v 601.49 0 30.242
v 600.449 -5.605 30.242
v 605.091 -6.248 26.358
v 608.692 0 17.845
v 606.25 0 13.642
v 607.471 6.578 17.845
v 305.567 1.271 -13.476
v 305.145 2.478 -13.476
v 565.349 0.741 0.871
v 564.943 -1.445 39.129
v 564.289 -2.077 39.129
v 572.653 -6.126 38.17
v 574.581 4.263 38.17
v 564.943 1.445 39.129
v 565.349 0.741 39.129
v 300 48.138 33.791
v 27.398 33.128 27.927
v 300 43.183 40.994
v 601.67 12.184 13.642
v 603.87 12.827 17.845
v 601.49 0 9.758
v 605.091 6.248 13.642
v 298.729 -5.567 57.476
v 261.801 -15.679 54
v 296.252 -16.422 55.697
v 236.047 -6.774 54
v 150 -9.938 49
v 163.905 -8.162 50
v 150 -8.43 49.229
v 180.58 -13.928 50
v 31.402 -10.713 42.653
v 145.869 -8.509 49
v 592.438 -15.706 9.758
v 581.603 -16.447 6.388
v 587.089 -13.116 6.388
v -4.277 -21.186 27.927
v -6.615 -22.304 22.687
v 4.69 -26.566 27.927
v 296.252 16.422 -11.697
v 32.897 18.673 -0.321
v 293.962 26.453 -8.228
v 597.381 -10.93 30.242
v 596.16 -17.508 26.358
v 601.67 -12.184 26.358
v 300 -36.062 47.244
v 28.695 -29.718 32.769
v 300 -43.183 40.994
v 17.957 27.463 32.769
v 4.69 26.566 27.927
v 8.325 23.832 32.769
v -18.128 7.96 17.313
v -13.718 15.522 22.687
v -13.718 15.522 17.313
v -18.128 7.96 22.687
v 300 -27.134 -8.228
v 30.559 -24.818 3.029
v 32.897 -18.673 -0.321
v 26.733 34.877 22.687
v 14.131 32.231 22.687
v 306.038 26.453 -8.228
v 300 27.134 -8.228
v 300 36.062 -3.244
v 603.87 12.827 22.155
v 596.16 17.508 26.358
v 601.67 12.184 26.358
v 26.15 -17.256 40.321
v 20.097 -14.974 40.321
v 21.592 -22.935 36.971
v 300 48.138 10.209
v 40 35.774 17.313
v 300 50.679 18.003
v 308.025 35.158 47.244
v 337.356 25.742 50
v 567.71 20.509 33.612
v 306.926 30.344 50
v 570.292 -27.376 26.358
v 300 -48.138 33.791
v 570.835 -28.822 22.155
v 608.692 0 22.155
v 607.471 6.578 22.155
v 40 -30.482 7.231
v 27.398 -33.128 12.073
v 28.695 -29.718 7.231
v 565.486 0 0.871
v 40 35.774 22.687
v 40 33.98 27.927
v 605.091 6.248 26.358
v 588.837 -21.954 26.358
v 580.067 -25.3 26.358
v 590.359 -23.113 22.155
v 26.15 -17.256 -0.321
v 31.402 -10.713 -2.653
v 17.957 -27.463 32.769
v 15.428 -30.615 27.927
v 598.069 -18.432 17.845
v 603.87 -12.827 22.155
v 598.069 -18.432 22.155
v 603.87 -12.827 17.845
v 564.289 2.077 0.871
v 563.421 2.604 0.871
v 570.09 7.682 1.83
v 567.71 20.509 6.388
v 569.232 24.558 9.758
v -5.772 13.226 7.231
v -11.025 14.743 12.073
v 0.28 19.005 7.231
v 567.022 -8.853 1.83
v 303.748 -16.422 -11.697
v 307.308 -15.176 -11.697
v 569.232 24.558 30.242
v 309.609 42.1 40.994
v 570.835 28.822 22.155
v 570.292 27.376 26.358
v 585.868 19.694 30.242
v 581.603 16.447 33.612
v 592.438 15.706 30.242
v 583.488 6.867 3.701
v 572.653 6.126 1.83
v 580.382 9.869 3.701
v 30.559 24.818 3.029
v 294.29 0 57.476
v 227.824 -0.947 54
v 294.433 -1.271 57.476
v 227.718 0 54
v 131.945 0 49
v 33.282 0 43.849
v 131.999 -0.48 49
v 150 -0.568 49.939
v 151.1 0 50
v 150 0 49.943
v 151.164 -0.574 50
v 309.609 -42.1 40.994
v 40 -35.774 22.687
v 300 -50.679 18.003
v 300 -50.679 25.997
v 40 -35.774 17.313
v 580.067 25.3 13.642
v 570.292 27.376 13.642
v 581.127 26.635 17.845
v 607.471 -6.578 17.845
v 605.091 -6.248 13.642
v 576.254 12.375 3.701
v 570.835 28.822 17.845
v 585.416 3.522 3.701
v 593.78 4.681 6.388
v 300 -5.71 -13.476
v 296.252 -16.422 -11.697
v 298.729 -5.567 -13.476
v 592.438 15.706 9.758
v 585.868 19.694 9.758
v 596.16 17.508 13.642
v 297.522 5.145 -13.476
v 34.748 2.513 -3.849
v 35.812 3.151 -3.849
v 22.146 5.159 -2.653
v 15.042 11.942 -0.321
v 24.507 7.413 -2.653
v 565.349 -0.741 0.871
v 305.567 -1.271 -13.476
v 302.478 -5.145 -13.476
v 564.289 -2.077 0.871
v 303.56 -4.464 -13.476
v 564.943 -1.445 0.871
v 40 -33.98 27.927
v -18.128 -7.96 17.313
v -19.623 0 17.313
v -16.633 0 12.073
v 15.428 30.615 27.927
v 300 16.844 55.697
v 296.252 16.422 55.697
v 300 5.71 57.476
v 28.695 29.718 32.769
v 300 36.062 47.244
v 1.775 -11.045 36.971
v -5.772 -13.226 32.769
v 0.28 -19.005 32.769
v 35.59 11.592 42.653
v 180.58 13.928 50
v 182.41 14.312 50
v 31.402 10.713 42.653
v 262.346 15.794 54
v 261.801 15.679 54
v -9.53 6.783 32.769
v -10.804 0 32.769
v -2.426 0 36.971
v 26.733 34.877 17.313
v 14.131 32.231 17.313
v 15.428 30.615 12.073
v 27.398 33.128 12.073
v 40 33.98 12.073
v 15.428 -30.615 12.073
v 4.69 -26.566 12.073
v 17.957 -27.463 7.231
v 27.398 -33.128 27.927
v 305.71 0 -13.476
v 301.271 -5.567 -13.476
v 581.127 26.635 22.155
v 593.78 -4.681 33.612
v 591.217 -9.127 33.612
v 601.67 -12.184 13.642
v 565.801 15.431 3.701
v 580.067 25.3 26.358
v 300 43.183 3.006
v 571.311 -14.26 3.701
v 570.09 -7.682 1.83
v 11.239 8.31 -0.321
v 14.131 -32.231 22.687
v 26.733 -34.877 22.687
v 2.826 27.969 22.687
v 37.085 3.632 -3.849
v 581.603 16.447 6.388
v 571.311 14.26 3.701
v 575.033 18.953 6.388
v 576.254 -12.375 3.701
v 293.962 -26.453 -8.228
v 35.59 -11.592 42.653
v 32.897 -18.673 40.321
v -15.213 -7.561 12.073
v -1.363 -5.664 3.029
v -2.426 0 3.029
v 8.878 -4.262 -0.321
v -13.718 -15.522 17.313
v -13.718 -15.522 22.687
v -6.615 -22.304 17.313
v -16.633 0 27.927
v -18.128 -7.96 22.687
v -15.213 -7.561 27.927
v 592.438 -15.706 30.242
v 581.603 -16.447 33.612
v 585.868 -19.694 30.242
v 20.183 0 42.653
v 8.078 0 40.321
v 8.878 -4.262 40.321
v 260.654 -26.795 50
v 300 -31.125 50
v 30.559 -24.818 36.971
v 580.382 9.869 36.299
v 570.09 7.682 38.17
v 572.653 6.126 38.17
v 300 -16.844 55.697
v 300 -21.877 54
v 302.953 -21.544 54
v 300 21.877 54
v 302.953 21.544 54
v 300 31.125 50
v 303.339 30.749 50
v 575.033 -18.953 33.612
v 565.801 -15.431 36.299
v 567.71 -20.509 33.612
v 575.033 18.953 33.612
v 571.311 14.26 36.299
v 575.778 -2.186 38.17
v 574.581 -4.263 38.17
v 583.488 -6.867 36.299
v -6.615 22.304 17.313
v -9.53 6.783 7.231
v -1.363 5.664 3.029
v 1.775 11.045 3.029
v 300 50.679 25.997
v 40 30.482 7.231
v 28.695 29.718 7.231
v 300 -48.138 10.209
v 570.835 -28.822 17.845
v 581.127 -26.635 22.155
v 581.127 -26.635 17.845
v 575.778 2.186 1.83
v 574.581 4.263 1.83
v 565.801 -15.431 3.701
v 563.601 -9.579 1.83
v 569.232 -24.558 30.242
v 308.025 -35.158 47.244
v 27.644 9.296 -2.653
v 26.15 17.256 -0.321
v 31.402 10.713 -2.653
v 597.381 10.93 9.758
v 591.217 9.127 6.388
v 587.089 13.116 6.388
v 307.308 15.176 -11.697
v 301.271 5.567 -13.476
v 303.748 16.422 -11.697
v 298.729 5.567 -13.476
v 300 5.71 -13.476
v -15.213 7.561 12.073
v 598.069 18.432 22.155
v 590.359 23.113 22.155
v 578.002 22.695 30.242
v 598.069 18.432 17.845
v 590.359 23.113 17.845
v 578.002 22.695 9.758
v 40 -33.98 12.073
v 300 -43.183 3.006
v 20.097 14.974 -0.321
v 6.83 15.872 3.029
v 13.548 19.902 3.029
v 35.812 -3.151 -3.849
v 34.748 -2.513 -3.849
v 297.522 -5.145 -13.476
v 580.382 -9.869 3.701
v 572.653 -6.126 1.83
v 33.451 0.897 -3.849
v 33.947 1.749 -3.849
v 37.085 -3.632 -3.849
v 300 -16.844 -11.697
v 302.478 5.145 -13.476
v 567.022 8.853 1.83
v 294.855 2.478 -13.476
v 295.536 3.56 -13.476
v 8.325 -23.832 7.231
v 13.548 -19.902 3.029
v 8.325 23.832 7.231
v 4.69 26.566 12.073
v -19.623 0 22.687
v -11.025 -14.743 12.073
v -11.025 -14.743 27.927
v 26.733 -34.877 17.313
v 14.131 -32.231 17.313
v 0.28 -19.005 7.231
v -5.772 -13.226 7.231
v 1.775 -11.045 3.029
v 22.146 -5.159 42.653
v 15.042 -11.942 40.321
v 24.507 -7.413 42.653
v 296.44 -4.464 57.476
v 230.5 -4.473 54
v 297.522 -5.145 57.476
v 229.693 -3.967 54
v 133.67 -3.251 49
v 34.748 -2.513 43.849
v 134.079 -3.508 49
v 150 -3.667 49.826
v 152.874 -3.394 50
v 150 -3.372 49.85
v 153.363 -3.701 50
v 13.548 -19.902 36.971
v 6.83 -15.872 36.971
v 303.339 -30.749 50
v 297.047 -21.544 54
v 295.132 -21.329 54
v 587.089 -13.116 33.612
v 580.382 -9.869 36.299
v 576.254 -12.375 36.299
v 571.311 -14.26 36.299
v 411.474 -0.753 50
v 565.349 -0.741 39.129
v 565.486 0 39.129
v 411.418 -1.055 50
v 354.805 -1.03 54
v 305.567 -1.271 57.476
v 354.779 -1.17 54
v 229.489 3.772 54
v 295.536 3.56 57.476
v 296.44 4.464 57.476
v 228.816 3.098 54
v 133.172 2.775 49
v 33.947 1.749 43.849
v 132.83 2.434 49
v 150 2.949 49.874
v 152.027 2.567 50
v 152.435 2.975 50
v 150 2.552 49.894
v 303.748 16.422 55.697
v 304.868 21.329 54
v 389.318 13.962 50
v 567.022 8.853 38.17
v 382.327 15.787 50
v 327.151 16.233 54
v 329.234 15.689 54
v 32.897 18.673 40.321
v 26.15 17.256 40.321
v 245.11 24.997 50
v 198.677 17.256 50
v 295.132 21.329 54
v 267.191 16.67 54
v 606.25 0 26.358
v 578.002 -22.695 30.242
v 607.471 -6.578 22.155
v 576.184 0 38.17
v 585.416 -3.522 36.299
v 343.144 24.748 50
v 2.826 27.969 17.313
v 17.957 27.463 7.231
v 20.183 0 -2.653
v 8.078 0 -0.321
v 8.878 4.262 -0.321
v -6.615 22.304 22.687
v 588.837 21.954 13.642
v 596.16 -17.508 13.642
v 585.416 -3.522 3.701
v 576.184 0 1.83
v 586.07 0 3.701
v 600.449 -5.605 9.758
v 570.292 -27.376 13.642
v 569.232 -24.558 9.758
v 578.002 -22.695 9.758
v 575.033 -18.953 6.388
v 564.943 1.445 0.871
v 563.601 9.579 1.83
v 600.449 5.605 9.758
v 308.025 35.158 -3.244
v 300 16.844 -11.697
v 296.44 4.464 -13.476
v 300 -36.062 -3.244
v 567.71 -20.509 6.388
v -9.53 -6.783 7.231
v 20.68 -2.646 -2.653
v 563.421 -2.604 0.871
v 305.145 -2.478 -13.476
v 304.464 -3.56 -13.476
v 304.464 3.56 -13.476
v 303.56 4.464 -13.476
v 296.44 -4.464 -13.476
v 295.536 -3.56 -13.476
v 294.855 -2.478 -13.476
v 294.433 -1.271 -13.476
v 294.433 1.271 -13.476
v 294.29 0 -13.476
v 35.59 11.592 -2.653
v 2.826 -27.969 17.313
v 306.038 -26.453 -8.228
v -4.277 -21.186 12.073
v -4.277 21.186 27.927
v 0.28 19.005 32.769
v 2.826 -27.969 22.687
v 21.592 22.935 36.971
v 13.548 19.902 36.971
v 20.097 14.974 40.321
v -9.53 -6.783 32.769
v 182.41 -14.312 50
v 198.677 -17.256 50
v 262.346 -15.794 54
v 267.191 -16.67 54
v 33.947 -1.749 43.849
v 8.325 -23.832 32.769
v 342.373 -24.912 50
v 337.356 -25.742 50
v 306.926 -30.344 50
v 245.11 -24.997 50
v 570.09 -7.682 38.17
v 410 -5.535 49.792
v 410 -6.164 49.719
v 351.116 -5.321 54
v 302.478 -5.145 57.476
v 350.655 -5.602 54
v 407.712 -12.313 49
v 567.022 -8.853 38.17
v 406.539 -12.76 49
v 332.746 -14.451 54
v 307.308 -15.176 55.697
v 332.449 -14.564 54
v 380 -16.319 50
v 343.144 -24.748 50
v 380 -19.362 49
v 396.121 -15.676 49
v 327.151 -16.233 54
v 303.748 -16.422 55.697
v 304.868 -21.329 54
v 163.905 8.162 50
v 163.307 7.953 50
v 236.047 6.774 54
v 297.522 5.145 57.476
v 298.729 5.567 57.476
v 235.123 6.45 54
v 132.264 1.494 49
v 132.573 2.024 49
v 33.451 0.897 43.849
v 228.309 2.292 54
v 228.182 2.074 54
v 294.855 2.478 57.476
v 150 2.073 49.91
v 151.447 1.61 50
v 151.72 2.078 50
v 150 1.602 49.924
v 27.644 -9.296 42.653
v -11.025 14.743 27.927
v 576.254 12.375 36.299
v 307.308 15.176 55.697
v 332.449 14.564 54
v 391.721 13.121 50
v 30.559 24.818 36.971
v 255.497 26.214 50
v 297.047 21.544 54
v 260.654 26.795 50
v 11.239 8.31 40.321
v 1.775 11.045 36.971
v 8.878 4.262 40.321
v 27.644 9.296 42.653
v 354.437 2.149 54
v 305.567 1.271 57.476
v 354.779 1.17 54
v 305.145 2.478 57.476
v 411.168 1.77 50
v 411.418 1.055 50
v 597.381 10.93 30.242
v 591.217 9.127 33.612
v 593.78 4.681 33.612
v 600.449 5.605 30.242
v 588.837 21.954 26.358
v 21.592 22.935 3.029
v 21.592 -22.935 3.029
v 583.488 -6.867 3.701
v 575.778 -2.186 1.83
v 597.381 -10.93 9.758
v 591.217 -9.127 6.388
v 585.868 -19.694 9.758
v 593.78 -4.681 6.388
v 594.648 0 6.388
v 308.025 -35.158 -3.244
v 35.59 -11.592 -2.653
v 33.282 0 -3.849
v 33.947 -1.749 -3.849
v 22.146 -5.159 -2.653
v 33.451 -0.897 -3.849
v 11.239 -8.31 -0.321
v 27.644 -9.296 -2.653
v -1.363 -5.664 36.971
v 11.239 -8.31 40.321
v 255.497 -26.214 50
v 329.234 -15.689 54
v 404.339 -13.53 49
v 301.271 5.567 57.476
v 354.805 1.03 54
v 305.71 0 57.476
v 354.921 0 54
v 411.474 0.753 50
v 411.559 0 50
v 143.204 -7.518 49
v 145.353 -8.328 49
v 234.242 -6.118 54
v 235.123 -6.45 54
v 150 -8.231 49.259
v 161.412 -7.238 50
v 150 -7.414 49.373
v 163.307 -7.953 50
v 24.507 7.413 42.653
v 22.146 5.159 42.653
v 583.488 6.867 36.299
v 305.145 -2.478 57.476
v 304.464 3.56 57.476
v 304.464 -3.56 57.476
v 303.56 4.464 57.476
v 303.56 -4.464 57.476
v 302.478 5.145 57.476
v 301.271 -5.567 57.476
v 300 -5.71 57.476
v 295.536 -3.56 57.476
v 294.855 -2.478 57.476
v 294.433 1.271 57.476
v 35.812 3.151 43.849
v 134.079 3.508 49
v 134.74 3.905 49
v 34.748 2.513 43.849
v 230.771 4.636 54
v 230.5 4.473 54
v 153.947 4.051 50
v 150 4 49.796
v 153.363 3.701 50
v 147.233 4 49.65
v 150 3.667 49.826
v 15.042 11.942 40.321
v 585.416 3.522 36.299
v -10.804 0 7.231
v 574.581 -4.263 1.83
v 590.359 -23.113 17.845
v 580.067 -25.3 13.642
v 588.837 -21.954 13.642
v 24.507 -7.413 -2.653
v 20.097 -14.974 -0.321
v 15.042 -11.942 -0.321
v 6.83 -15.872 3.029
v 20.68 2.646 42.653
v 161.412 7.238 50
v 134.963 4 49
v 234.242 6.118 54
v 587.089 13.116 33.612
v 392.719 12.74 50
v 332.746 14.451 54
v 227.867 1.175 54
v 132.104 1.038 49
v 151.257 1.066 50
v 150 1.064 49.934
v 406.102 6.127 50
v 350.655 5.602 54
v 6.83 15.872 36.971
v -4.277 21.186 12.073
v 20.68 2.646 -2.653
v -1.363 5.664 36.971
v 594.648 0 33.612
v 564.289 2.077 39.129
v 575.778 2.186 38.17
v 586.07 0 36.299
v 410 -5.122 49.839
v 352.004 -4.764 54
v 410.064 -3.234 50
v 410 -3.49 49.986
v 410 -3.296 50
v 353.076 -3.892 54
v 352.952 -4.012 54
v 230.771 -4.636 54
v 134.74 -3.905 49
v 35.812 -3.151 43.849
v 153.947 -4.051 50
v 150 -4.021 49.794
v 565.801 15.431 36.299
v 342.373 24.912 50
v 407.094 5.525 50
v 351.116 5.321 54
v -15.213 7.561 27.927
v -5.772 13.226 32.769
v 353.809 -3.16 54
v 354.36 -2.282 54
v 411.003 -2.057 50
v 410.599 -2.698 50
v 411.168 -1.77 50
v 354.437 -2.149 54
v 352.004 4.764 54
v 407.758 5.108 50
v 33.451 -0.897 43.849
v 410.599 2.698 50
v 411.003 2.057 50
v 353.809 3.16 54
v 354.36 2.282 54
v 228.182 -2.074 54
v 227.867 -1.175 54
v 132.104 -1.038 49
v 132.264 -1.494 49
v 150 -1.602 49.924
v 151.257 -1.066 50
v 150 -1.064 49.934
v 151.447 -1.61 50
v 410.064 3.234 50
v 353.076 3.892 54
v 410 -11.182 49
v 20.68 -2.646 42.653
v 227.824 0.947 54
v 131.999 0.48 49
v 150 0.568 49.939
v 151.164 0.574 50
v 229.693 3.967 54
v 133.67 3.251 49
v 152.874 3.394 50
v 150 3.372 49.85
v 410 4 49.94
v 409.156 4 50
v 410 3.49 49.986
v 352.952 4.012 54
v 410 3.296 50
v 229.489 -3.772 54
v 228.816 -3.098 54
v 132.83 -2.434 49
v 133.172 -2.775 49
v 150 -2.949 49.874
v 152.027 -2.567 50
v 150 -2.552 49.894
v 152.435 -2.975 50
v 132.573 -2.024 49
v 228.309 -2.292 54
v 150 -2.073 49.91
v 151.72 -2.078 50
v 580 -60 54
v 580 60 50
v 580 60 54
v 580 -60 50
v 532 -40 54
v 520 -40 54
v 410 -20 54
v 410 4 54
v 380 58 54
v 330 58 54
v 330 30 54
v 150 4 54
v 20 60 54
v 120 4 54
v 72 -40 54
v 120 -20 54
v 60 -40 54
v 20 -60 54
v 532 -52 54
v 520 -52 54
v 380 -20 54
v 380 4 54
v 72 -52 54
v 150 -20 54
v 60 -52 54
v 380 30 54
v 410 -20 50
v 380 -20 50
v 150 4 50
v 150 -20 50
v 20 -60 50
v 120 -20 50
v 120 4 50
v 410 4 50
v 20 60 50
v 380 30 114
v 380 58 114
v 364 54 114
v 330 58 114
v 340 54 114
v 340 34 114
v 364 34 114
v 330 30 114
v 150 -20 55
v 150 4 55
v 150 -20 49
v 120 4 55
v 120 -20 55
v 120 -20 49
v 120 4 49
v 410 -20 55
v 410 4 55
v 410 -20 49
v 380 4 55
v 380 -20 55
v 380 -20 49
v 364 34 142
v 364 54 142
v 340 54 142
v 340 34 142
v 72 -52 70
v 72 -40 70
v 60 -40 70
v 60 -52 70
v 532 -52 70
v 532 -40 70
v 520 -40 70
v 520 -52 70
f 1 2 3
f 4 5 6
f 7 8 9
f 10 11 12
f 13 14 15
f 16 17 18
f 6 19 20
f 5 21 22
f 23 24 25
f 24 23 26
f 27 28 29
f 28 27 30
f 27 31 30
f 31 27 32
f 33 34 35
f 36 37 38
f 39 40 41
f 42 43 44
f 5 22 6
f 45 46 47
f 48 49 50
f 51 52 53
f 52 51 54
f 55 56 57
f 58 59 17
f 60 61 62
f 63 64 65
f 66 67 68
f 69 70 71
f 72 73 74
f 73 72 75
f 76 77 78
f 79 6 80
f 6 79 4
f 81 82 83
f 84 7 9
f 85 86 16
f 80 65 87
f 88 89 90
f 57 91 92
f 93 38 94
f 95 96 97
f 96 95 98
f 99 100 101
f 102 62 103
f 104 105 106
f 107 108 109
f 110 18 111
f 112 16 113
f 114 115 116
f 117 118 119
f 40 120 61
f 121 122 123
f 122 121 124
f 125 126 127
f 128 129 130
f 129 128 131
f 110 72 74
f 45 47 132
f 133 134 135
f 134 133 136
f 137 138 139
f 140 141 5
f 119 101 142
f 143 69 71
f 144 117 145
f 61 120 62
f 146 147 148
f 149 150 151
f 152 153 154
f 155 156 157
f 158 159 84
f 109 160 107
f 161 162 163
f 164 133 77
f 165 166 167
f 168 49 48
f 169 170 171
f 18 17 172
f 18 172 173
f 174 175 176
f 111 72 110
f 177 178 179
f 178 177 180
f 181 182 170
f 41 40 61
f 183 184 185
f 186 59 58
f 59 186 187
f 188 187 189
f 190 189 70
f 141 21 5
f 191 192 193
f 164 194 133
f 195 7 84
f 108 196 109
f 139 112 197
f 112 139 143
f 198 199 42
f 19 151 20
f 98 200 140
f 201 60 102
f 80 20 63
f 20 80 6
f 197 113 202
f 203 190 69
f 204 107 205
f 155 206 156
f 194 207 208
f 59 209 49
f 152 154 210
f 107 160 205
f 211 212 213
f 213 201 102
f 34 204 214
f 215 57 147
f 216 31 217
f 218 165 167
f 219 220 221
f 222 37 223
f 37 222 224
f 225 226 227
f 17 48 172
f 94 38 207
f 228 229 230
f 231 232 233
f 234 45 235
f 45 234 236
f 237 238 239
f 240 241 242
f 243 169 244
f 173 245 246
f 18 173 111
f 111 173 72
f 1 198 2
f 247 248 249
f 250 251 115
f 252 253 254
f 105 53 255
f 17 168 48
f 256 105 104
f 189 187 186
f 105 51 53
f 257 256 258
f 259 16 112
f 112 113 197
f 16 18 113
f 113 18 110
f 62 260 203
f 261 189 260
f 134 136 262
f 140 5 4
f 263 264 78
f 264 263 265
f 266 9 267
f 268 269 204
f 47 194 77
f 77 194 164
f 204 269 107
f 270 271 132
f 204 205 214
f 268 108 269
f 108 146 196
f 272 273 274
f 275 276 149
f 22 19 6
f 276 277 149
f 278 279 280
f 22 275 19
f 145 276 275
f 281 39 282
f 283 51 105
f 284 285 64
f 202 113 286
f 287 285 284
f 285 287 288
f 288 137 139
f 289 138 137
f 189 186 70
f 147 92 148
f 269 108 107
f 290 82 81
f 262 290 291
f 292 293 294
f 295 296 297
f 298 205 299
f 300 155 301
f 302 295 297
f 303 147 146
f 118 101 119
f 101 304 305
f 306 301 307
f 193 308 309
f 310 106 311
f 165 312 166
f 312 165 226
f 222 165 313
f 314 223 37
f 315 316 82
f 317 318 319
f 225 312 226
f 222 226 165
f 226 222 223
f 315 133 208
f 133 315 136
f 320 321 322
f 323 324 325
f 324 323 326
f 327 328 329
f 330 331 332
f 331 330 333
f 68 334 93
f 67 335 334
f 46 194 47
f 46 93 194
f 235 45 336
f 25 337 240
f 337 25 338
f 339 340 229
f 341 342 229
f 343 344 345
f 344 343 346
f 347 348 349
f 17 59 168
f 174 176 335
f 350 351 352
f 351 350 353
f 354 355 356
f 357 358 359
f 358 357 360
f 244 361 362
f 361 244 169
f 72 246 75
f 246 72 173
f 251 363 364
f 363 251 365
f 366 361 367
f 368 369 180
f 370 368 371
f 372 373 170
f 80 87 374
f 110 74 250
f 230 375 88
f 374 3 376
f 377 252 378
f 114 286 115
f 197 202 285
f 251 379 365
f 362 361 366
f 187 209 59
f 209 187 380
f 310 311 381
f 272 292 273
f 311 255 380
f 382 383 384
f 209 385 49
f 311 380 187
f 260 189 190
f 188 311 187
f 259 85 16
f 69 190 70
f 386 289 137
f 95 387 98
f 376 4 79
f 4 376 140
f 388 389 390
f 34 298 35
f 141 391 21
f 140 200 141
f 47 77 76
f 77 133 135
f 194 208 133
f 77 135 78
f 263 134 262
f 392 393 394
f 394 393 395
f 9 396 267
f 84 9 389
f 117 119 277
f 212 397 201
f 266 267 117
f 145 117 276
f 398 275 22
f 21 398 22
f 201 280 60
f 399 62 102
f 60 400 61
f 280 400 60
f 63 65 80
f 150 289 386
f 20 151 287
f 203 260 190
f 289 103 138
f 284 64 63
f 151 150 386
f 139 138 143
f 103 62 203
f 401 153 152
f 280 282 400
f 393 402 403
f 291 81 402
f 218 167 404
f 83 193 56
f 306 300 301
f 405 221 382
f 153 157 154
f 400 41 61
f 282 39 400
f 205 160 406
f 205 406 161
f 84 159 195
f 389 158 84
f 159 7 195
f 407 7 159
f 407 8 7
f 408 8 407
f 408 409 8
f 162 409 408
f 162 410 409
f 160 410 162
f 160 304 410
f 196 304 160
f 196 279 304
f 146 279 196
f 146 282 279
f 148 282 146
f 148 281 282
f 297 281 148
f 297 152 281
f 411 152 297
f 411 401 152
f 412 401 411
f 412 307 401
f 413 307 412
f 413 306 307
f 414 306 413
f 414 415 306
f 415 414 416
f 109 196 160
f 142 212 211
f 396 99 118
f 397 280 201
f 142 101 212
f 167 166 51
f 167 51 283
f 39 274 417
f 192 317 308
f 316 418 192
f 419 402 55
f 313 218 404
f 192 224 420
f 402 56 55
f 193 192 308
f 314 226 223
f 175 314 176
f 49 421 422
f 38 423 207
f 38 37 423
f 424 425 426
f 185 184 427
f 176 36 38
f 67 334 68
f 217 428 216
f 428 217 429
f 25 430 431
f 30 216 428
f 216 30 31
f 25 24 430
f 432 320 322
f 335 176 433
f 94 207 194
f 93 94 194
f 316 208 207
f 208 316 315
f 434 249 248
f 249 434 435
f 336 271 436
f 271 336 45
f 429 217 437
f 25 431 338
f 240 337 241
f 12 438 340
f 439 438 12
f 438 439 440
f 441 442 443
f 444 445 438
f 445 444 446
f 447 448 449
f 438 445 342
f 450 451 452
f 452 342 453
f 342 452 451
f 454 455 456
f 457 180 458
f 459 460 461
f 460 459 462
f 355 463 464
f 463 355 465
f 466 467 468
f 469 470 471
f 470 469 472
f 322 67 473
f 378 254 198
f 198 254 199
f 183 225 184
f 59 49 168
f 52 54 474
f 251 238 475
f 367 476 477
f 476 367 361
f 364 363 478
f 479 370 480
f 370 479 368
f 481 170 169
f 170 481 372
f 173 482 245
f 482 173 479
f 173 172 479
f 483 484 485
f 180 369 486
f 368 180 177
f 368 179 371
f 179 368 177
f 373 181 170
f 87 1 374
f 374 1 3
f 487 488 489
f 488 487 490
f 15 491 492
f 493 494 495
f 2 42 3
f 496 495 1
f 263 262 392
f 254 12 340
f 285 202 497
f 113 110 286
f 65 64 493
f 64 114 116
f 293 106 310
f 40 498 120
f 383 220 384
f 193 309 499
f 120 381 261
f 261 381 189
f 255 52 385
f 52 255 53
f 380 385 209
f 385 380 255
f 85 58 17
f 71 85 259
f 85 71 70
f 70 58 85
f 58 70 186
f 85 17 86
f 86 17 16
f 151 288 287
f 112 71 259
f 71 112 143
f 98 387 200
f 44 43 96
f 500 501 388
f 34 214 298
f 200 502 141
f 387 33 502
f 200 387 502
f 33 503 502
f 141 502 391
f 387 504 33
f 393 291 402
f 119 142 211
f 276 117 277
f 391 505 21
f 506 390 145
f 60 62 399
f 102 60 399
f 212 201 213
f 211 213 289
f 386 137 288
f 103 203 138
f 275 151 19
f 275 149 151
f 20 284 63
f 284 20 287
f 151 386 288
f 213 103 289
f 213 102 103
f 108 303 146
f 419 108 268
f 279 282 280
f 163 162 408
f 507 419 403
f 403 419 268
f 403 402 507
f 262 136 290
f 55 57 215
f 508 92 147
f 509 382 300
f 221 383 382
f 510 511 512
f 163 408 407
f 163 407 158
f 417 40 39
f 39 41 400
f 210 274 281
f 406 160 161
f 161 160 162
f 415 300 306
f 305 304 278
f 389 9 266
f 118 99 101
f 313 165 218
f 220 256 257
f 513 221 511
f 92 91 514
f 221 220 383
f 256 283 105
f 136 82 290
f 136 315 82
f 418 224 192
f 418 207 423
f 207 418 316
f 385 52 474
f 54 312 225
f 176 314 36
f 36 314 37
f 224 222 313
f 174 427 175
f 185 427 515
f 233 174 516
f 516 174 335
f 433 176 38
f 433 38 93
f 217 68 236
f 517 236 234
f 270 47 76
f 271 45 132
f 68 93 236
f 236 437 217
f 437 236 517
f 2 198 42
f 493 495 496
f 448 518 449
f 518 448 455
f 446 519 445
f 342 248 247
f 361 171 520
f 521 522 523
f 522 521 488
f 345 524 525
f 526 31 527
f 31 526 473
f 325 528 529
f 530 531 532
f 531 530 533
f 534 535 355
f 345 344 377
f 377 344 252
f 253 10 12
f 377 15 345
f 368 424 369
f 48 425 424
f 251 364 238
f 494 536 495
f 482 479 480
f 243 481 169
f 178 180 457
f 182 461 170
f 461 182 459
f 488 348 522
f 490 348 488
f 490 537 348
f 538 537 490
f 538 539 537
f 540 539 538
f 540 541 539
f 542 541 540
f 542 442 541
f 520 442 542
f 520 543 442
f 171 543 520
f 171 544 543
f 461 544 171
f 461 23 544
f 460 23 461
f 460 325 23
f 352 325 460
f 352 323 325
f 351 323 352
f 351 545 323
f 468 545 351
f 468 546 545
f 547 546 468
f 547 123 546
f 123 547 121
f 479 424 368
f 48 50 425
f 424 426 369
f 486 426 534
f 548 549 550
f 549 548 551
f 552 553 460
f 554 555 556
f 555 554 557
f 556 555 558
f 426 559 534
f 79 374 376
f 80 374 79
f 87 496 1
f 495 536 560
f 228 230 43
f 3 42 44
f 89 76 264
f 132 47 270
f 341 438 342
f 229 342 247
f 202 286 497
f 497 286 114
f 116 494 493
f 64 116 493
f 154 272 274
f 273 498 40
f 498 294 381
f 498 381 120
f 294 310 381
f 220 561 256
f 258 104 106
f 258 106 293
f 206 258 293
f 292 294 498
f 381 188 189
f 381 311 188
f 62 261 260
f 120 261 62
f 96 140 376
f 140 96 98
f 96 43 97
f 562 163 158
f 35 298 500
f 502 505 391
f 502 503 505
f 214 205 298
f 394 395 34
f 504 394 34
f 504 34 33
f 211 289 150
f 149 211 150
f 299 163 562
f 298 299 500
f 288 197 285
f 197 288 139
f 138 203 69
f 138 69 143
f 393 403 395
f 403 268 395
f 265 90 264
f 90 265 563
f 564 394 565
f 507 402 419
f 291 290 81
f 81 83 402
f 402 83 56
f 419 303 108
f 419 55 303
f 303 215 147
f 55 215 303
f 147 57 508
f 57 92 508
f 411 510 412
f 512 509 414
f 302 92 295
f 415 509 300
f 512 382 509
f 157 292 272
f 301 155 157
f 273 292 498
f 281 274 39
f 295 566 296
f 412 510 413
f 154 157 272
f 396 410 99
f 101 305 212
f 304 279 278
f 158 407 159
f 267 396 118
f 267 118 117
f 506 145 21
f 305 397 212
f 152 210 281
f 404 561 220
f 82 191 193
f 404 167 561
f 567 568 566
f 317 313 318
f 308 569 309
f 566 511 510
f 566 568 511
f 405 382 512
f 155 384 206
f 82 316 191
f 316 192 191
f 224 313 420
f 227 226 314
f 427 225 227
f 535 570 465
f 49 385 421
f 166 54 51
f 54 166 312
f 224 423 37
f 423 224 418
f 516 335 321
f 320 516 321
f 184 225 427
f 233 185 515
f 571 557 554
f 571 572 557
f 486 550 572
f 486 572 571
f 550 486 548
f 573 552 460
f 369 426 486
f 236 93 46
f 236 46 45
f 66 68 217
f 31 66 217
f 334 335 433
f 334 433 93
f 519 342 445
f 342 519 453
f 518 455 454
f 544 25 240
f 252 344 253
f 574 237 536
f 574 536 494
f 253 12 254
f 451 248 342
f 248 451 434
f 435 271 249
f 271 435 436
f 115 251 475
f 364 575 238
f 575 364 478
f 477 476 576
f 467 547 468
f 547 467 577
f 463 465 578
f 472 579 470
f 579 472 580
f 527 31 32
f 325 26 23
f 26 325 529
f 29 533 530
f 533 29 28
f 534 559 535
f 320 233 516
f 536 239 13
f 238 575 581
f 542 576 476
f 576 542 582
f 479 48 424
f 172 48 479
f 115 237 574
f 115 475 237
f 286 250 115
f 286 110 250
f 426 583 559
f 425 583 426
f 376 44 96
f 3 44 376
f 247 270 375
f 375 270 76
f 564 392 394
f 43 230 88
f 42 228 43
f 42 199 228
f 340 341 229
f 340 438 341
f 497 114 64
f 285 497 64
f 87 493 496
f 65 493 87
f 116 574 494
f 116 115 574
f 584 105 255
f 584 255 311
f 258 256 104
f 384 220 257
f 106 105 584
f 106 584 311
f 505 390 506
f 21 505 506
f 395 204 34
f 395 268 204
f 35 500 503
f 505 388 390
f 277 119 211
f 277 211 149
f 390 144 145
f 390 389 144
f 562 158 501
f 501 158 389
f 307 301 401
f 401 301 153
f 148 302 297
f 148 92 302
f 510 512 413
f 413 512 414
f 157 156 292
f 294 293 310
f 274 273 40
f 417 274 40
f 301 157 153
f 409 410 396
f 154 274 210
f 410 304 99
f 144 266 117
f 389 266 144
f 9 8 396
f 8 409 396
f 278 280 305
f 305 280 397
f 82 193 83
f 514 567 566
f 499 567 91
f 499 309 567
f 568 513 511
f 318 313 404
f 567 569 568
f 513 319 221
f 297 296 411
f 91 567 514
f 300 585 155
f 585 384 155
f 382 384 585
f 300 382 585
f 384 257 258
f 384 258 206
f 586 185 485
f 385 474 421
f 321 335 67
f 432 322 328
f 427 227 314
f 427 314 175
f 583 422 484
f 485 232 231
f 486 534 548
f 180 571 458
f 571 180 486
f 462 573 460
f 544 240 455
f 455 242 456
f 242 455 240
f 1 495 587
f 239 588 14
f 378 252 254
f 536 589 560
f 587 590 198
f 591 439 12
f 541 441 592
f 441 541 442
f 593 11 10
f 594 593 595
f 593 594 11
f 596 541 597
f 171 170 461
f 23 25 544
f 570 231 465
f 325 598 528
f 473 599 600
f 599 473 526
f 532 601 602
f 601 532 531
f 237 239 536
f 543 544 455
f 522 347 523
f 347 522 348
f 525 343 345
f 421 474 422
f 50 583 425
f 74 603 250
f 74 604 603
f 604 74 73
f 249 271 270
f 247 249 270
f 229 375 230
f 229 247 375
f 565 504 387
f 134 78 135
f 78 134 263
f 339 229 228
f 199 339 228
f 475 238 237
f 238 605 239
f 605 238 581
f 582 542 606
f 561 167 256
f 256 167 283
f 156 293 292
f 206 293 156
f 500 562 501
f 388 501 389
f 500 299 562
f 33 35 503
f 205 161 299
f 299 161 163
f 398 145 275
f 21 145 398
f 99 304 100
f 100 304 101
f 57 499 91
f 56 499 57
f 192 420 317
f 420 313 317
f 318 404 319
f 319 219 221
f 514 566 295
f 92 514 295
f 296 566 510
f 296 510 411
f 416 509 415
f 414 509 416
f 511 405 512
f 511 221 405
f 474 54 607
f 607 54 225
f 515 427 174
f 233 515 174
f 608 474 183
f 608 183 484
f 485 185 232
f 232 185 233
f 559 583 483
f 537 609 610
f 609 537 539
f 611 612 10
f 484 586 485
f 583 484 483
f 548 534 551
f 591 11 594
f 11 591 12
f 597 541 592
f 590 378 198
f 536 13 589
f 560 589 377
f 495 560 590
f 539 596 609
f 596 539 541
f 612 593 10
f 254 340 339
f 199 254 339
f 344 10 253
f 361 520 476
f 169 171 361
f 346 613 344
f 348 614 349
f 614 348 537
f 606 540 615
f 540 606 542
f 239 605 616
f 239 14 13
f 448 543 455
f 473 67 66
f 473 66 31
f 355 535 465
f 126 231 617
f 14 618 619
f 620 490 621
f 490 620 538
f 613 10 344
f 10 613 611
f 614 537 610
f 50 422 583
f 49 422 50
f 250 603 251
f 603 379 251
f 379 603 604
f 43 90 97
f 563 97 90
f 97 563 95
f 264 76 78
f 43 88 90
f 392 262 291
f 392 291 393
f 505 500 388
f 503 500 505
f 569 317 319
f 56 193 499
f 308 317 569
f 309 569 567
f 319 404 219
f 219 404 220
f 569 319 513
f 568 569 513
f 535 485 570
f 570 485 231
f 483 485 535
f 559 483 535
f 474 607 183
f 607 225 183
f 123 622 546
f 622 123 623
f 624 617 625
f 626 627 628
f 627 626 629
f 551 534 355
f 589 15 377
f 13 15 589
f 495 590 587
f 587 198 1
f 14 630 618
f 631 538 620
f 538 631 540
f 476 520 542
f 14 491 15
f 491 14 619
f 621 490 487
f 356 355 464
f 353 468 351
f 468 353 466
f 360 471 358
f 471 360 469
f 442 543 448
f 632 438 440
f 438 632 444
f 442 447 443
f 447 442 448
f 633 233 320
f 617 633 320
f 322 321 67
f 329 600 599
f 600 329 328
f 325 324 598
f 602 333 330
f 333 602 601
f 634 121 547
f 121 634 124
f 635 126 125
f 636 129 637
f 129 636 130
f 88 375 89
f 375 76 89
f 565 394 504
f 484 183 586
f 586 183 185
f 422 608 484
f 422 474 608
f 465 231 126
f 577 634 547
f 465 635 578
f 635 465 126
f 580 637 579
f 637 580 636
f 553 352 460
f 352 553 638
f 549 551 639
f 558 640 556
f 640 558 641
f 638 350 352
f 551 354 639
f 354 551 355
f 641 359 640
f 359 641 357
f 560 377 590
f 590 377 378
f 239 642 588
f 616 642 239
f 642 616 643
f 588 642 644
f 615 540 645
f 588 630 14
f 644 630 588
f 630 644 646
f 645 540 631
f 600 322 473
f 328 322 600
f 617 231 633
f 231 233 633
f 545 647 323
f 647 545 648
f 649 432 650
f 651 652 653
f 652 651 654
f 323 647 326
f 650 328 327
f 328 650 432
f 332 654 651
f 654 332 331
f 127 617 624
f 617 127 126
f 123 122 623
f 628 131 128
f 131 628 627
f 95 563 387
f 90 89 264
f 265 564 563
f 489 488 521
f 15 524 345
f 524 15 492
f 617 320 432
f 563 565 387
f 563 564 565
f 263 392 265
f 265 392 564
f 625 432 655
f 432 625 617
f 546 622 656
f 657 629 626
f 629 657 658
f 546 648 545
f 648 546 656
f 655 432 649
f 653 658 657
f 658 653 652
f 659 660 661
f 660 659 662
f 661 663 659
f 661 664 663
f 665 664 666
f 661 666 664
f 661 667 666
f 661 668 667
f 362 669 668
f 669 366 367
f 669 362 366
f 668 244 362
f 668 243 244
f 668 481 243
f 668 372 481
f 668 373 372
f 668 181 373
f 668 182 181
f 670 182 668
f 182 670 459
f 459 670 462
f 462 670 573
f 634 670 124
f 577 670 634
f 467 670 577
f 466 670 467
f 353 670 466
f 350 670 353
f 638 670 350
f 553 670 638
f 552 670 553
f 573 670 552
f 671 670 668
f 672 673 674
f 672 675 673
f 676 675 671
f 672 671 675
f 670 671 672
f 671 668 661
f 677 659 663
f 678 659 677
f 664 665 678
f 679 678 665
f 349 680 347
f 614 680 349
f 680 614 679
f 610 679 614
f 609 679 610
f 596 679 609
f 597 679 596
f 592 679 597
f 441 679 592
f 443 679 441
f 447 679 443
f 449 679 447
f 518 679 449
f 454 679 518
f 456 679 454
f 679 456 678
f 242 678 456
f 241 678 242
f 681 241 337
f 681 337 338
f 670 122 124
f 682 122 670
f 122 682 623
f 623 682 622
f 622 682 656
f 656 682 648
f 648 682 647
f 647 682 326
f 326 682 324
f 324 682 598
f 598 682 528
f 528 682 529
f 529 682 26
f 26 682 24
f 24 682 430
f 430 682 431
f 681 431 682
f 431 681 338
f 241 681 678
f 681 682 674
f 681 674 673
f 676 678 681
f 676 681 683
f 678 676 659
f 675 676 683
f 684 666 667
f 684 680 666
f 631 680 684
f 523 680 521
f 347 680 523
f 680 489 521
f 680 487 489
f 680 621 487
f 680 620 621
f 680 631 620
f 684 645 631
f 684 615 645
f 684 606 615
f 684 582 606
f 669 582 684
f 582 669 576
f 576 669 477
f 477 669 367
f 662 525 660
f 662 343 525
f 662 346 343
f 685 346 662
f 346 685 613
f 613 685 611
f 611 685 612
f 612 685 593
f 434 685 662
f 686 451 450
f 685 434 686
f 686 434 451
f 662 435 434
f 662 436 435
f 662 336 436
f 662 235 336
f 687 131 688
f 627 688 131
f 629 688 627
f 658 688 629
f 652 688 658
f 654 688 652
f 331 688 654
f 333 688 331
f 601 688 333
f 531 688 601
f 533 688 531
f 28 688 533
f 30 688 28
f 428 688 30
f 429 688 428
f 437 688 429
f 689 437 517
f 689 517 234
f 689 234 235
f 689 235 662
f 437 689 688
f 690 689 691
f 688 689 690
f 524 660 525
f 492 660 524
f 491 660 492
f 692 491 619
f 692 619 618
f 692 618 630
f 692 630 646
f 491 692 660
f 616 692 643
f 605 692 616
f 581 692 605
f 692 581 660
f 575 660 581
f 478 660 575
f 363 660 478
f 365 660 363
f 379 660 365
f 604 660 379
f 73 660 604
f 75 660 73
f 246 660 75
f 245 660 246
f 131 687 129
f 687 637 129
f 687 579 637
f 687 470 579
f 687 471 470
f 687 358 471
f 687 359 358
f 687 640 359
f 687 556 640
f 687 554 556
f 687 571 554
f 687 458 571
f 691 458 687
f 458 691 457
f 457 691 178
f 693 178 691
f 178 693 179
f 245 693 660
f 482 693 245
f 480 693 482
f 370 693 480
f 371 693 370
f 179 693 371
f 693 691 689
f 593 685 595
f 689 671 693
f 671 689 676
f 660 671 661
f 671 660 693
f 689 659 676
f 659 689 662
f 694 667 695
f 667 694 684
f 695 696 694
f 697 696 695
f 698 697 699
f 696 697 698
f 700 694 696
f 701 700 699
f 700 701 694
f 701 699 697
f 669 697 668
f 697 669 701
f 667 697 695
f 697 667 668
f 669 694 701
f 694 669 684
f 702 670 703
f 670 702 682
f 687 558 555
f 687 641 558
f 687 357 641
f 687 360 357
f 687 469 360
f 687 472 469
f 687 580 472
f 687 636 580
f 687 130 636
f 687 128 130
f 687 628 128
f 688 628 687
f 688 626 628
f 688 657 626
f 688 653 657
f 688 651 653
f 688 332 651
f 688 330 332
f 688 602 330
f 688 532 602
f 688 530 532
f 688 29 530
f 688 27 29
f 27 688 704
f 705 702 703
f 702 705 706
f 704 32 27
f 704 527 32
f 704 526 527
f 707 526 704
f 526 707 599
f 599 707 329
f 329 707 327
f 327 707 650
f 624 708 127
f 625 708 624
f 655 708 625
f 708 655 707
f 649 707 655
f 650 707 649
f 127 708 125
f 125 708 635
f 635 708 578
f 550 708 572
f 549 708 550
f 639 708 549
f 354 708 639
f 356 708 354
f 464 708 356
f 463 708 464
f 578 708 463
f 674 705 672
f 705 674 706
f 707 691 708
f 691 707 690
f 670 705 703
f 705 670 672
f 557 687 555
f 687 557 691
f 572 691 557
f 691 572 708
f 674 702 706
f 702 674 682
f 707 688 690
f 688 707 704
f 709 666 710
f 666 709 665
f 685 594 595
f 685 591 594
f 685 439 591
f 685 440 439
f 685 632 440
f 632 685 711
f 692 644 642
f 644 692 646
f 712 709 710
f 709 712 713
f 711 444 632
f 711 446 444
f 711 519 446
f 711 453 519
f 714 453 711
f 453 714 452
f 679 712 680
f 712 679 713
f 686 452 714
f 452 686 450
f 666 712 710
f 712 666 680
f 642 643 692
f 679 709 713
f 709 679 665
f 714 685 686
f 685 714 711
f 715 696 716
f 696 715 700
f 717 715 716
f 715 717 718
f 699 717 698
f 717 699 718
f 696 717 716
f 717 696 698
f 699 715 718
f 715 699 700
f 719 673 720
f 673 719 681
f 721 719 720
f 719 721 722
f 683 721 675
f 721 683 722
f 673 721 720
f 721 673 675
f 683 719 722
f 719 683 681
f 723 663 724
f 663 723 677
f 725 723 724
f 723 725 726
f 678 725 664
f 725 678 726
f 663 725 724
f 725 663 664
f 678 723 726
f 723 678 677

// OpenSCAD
// ISM-CV-1 carrier flight-deck + structural study — #45
// Units: mm. Proportion sketch + topside mass boxes + ghost structure.
// Weapons/sensors = geometry mass boxes only — no combat solids.

deck_length = 600;
deck_beam   = 120;
hull_depth  = 50;
frame_count = 10;

module carrier_hull() {
    hull() {
        translate([40, 0, 20])
            scale([1.5, 0.9, 0.6])
                sphere(d = 80, $fn = 28);
        translate([deck_length * 0.5, 0, 22])
            scale([1.0, 1.0, 0.7])
                sphere(d = deck_beam * 0.85, $fn = 28);
        translate([deck_length - 40, 0, 20])
            scale([1.4, 0.85, 0.55])
                sphere(d = 70, $fn = 28);
    }
}

module flight_deck() {
    translate([20, -deck_beam / 2, hull_depth])
        cube([deck_length - 40, deck_beam, 4]);
}

module island() {
    translate([deck_length * 0.55, deck_beam * 0.25, hull_depth + 4])
        cube([50, 28, 60]);
}

module elevator_opening(x) {
    translate([x, -20, hull_depth - 1])
        cube([30, 24, 6]);
}

module radar_mass_box() {
    translate([deck_length * 0.55 + 10, deck_beam * 0.25 + 4, hull_depth + 64])
        cube([24, 20, 28]);
}

module ciws_mass_box(x) {
    translate([x, -deck_beam / 2 + 8, hull_depth + 4])
        cube([12, 12, 16]);
}

module keel() {
    translate([40, -3, 8])
        cube([deck_length - 80, 6, 8]);
}

module transverse_frames() {
    for (i = [1:frame_count]) {
        x = 50 + i * (deck_length - 100) / (frame_count + 1);
        translate([x, -deck_beam * 0.35, 6])
            cube([3, deck_beam * 0.7, hull_depth - 8]);
    }
}

module hangar_deck() {
    translate([40, -deck_beam * 0.4, hull_depth * 0.55])
        cube([deck_length - 80, deck_beam * 0.8, 3]);
}

module flight_deck_beams() {
    for (i = [0:8]) {
        translate([40 + i * 60, -deck_beam * 0.4, hull_depth - 2])
            cube([4, deck_beam * 0.8, 3]);
    }
}

module elevator_trunks() {
    for (x = [120, 380]) {
        translate([x + 2, -18, 10])
            cube([26, 20, hull_depth - 12]);
    }
}

module island_foundation() {
    translate([deck_length * 0.55, deck_beam * 0.22, hull_depth - 6])
        cube([50, 34, 8]);
}

module catapult_arresting_keepouts() {
    // Load-path placeholders only — no plant design
    translate([80, -8, hull_depth + 4])
        cube([180, 16, 2]);
    translate([deck_length - 200, -8, hull_depth + 4])
        cube([120, 16, 2]);
}

echo("#45: carrier structural study — frames/hangar; mass boxes only; no combat interfaces");
carrier_hull();
flight_deck();
island();
elevator_opening(120);
elevator_opening(380);
radar_mass_box();
ciws_mass_box(60);
ciws_mass_box(520);
%keel();
%transverse_frames();
%hangar_deck();
%flight_deck_beams();
%elevator_trunks();
%island_foundation();
%catapult_arresting_keepouts();
